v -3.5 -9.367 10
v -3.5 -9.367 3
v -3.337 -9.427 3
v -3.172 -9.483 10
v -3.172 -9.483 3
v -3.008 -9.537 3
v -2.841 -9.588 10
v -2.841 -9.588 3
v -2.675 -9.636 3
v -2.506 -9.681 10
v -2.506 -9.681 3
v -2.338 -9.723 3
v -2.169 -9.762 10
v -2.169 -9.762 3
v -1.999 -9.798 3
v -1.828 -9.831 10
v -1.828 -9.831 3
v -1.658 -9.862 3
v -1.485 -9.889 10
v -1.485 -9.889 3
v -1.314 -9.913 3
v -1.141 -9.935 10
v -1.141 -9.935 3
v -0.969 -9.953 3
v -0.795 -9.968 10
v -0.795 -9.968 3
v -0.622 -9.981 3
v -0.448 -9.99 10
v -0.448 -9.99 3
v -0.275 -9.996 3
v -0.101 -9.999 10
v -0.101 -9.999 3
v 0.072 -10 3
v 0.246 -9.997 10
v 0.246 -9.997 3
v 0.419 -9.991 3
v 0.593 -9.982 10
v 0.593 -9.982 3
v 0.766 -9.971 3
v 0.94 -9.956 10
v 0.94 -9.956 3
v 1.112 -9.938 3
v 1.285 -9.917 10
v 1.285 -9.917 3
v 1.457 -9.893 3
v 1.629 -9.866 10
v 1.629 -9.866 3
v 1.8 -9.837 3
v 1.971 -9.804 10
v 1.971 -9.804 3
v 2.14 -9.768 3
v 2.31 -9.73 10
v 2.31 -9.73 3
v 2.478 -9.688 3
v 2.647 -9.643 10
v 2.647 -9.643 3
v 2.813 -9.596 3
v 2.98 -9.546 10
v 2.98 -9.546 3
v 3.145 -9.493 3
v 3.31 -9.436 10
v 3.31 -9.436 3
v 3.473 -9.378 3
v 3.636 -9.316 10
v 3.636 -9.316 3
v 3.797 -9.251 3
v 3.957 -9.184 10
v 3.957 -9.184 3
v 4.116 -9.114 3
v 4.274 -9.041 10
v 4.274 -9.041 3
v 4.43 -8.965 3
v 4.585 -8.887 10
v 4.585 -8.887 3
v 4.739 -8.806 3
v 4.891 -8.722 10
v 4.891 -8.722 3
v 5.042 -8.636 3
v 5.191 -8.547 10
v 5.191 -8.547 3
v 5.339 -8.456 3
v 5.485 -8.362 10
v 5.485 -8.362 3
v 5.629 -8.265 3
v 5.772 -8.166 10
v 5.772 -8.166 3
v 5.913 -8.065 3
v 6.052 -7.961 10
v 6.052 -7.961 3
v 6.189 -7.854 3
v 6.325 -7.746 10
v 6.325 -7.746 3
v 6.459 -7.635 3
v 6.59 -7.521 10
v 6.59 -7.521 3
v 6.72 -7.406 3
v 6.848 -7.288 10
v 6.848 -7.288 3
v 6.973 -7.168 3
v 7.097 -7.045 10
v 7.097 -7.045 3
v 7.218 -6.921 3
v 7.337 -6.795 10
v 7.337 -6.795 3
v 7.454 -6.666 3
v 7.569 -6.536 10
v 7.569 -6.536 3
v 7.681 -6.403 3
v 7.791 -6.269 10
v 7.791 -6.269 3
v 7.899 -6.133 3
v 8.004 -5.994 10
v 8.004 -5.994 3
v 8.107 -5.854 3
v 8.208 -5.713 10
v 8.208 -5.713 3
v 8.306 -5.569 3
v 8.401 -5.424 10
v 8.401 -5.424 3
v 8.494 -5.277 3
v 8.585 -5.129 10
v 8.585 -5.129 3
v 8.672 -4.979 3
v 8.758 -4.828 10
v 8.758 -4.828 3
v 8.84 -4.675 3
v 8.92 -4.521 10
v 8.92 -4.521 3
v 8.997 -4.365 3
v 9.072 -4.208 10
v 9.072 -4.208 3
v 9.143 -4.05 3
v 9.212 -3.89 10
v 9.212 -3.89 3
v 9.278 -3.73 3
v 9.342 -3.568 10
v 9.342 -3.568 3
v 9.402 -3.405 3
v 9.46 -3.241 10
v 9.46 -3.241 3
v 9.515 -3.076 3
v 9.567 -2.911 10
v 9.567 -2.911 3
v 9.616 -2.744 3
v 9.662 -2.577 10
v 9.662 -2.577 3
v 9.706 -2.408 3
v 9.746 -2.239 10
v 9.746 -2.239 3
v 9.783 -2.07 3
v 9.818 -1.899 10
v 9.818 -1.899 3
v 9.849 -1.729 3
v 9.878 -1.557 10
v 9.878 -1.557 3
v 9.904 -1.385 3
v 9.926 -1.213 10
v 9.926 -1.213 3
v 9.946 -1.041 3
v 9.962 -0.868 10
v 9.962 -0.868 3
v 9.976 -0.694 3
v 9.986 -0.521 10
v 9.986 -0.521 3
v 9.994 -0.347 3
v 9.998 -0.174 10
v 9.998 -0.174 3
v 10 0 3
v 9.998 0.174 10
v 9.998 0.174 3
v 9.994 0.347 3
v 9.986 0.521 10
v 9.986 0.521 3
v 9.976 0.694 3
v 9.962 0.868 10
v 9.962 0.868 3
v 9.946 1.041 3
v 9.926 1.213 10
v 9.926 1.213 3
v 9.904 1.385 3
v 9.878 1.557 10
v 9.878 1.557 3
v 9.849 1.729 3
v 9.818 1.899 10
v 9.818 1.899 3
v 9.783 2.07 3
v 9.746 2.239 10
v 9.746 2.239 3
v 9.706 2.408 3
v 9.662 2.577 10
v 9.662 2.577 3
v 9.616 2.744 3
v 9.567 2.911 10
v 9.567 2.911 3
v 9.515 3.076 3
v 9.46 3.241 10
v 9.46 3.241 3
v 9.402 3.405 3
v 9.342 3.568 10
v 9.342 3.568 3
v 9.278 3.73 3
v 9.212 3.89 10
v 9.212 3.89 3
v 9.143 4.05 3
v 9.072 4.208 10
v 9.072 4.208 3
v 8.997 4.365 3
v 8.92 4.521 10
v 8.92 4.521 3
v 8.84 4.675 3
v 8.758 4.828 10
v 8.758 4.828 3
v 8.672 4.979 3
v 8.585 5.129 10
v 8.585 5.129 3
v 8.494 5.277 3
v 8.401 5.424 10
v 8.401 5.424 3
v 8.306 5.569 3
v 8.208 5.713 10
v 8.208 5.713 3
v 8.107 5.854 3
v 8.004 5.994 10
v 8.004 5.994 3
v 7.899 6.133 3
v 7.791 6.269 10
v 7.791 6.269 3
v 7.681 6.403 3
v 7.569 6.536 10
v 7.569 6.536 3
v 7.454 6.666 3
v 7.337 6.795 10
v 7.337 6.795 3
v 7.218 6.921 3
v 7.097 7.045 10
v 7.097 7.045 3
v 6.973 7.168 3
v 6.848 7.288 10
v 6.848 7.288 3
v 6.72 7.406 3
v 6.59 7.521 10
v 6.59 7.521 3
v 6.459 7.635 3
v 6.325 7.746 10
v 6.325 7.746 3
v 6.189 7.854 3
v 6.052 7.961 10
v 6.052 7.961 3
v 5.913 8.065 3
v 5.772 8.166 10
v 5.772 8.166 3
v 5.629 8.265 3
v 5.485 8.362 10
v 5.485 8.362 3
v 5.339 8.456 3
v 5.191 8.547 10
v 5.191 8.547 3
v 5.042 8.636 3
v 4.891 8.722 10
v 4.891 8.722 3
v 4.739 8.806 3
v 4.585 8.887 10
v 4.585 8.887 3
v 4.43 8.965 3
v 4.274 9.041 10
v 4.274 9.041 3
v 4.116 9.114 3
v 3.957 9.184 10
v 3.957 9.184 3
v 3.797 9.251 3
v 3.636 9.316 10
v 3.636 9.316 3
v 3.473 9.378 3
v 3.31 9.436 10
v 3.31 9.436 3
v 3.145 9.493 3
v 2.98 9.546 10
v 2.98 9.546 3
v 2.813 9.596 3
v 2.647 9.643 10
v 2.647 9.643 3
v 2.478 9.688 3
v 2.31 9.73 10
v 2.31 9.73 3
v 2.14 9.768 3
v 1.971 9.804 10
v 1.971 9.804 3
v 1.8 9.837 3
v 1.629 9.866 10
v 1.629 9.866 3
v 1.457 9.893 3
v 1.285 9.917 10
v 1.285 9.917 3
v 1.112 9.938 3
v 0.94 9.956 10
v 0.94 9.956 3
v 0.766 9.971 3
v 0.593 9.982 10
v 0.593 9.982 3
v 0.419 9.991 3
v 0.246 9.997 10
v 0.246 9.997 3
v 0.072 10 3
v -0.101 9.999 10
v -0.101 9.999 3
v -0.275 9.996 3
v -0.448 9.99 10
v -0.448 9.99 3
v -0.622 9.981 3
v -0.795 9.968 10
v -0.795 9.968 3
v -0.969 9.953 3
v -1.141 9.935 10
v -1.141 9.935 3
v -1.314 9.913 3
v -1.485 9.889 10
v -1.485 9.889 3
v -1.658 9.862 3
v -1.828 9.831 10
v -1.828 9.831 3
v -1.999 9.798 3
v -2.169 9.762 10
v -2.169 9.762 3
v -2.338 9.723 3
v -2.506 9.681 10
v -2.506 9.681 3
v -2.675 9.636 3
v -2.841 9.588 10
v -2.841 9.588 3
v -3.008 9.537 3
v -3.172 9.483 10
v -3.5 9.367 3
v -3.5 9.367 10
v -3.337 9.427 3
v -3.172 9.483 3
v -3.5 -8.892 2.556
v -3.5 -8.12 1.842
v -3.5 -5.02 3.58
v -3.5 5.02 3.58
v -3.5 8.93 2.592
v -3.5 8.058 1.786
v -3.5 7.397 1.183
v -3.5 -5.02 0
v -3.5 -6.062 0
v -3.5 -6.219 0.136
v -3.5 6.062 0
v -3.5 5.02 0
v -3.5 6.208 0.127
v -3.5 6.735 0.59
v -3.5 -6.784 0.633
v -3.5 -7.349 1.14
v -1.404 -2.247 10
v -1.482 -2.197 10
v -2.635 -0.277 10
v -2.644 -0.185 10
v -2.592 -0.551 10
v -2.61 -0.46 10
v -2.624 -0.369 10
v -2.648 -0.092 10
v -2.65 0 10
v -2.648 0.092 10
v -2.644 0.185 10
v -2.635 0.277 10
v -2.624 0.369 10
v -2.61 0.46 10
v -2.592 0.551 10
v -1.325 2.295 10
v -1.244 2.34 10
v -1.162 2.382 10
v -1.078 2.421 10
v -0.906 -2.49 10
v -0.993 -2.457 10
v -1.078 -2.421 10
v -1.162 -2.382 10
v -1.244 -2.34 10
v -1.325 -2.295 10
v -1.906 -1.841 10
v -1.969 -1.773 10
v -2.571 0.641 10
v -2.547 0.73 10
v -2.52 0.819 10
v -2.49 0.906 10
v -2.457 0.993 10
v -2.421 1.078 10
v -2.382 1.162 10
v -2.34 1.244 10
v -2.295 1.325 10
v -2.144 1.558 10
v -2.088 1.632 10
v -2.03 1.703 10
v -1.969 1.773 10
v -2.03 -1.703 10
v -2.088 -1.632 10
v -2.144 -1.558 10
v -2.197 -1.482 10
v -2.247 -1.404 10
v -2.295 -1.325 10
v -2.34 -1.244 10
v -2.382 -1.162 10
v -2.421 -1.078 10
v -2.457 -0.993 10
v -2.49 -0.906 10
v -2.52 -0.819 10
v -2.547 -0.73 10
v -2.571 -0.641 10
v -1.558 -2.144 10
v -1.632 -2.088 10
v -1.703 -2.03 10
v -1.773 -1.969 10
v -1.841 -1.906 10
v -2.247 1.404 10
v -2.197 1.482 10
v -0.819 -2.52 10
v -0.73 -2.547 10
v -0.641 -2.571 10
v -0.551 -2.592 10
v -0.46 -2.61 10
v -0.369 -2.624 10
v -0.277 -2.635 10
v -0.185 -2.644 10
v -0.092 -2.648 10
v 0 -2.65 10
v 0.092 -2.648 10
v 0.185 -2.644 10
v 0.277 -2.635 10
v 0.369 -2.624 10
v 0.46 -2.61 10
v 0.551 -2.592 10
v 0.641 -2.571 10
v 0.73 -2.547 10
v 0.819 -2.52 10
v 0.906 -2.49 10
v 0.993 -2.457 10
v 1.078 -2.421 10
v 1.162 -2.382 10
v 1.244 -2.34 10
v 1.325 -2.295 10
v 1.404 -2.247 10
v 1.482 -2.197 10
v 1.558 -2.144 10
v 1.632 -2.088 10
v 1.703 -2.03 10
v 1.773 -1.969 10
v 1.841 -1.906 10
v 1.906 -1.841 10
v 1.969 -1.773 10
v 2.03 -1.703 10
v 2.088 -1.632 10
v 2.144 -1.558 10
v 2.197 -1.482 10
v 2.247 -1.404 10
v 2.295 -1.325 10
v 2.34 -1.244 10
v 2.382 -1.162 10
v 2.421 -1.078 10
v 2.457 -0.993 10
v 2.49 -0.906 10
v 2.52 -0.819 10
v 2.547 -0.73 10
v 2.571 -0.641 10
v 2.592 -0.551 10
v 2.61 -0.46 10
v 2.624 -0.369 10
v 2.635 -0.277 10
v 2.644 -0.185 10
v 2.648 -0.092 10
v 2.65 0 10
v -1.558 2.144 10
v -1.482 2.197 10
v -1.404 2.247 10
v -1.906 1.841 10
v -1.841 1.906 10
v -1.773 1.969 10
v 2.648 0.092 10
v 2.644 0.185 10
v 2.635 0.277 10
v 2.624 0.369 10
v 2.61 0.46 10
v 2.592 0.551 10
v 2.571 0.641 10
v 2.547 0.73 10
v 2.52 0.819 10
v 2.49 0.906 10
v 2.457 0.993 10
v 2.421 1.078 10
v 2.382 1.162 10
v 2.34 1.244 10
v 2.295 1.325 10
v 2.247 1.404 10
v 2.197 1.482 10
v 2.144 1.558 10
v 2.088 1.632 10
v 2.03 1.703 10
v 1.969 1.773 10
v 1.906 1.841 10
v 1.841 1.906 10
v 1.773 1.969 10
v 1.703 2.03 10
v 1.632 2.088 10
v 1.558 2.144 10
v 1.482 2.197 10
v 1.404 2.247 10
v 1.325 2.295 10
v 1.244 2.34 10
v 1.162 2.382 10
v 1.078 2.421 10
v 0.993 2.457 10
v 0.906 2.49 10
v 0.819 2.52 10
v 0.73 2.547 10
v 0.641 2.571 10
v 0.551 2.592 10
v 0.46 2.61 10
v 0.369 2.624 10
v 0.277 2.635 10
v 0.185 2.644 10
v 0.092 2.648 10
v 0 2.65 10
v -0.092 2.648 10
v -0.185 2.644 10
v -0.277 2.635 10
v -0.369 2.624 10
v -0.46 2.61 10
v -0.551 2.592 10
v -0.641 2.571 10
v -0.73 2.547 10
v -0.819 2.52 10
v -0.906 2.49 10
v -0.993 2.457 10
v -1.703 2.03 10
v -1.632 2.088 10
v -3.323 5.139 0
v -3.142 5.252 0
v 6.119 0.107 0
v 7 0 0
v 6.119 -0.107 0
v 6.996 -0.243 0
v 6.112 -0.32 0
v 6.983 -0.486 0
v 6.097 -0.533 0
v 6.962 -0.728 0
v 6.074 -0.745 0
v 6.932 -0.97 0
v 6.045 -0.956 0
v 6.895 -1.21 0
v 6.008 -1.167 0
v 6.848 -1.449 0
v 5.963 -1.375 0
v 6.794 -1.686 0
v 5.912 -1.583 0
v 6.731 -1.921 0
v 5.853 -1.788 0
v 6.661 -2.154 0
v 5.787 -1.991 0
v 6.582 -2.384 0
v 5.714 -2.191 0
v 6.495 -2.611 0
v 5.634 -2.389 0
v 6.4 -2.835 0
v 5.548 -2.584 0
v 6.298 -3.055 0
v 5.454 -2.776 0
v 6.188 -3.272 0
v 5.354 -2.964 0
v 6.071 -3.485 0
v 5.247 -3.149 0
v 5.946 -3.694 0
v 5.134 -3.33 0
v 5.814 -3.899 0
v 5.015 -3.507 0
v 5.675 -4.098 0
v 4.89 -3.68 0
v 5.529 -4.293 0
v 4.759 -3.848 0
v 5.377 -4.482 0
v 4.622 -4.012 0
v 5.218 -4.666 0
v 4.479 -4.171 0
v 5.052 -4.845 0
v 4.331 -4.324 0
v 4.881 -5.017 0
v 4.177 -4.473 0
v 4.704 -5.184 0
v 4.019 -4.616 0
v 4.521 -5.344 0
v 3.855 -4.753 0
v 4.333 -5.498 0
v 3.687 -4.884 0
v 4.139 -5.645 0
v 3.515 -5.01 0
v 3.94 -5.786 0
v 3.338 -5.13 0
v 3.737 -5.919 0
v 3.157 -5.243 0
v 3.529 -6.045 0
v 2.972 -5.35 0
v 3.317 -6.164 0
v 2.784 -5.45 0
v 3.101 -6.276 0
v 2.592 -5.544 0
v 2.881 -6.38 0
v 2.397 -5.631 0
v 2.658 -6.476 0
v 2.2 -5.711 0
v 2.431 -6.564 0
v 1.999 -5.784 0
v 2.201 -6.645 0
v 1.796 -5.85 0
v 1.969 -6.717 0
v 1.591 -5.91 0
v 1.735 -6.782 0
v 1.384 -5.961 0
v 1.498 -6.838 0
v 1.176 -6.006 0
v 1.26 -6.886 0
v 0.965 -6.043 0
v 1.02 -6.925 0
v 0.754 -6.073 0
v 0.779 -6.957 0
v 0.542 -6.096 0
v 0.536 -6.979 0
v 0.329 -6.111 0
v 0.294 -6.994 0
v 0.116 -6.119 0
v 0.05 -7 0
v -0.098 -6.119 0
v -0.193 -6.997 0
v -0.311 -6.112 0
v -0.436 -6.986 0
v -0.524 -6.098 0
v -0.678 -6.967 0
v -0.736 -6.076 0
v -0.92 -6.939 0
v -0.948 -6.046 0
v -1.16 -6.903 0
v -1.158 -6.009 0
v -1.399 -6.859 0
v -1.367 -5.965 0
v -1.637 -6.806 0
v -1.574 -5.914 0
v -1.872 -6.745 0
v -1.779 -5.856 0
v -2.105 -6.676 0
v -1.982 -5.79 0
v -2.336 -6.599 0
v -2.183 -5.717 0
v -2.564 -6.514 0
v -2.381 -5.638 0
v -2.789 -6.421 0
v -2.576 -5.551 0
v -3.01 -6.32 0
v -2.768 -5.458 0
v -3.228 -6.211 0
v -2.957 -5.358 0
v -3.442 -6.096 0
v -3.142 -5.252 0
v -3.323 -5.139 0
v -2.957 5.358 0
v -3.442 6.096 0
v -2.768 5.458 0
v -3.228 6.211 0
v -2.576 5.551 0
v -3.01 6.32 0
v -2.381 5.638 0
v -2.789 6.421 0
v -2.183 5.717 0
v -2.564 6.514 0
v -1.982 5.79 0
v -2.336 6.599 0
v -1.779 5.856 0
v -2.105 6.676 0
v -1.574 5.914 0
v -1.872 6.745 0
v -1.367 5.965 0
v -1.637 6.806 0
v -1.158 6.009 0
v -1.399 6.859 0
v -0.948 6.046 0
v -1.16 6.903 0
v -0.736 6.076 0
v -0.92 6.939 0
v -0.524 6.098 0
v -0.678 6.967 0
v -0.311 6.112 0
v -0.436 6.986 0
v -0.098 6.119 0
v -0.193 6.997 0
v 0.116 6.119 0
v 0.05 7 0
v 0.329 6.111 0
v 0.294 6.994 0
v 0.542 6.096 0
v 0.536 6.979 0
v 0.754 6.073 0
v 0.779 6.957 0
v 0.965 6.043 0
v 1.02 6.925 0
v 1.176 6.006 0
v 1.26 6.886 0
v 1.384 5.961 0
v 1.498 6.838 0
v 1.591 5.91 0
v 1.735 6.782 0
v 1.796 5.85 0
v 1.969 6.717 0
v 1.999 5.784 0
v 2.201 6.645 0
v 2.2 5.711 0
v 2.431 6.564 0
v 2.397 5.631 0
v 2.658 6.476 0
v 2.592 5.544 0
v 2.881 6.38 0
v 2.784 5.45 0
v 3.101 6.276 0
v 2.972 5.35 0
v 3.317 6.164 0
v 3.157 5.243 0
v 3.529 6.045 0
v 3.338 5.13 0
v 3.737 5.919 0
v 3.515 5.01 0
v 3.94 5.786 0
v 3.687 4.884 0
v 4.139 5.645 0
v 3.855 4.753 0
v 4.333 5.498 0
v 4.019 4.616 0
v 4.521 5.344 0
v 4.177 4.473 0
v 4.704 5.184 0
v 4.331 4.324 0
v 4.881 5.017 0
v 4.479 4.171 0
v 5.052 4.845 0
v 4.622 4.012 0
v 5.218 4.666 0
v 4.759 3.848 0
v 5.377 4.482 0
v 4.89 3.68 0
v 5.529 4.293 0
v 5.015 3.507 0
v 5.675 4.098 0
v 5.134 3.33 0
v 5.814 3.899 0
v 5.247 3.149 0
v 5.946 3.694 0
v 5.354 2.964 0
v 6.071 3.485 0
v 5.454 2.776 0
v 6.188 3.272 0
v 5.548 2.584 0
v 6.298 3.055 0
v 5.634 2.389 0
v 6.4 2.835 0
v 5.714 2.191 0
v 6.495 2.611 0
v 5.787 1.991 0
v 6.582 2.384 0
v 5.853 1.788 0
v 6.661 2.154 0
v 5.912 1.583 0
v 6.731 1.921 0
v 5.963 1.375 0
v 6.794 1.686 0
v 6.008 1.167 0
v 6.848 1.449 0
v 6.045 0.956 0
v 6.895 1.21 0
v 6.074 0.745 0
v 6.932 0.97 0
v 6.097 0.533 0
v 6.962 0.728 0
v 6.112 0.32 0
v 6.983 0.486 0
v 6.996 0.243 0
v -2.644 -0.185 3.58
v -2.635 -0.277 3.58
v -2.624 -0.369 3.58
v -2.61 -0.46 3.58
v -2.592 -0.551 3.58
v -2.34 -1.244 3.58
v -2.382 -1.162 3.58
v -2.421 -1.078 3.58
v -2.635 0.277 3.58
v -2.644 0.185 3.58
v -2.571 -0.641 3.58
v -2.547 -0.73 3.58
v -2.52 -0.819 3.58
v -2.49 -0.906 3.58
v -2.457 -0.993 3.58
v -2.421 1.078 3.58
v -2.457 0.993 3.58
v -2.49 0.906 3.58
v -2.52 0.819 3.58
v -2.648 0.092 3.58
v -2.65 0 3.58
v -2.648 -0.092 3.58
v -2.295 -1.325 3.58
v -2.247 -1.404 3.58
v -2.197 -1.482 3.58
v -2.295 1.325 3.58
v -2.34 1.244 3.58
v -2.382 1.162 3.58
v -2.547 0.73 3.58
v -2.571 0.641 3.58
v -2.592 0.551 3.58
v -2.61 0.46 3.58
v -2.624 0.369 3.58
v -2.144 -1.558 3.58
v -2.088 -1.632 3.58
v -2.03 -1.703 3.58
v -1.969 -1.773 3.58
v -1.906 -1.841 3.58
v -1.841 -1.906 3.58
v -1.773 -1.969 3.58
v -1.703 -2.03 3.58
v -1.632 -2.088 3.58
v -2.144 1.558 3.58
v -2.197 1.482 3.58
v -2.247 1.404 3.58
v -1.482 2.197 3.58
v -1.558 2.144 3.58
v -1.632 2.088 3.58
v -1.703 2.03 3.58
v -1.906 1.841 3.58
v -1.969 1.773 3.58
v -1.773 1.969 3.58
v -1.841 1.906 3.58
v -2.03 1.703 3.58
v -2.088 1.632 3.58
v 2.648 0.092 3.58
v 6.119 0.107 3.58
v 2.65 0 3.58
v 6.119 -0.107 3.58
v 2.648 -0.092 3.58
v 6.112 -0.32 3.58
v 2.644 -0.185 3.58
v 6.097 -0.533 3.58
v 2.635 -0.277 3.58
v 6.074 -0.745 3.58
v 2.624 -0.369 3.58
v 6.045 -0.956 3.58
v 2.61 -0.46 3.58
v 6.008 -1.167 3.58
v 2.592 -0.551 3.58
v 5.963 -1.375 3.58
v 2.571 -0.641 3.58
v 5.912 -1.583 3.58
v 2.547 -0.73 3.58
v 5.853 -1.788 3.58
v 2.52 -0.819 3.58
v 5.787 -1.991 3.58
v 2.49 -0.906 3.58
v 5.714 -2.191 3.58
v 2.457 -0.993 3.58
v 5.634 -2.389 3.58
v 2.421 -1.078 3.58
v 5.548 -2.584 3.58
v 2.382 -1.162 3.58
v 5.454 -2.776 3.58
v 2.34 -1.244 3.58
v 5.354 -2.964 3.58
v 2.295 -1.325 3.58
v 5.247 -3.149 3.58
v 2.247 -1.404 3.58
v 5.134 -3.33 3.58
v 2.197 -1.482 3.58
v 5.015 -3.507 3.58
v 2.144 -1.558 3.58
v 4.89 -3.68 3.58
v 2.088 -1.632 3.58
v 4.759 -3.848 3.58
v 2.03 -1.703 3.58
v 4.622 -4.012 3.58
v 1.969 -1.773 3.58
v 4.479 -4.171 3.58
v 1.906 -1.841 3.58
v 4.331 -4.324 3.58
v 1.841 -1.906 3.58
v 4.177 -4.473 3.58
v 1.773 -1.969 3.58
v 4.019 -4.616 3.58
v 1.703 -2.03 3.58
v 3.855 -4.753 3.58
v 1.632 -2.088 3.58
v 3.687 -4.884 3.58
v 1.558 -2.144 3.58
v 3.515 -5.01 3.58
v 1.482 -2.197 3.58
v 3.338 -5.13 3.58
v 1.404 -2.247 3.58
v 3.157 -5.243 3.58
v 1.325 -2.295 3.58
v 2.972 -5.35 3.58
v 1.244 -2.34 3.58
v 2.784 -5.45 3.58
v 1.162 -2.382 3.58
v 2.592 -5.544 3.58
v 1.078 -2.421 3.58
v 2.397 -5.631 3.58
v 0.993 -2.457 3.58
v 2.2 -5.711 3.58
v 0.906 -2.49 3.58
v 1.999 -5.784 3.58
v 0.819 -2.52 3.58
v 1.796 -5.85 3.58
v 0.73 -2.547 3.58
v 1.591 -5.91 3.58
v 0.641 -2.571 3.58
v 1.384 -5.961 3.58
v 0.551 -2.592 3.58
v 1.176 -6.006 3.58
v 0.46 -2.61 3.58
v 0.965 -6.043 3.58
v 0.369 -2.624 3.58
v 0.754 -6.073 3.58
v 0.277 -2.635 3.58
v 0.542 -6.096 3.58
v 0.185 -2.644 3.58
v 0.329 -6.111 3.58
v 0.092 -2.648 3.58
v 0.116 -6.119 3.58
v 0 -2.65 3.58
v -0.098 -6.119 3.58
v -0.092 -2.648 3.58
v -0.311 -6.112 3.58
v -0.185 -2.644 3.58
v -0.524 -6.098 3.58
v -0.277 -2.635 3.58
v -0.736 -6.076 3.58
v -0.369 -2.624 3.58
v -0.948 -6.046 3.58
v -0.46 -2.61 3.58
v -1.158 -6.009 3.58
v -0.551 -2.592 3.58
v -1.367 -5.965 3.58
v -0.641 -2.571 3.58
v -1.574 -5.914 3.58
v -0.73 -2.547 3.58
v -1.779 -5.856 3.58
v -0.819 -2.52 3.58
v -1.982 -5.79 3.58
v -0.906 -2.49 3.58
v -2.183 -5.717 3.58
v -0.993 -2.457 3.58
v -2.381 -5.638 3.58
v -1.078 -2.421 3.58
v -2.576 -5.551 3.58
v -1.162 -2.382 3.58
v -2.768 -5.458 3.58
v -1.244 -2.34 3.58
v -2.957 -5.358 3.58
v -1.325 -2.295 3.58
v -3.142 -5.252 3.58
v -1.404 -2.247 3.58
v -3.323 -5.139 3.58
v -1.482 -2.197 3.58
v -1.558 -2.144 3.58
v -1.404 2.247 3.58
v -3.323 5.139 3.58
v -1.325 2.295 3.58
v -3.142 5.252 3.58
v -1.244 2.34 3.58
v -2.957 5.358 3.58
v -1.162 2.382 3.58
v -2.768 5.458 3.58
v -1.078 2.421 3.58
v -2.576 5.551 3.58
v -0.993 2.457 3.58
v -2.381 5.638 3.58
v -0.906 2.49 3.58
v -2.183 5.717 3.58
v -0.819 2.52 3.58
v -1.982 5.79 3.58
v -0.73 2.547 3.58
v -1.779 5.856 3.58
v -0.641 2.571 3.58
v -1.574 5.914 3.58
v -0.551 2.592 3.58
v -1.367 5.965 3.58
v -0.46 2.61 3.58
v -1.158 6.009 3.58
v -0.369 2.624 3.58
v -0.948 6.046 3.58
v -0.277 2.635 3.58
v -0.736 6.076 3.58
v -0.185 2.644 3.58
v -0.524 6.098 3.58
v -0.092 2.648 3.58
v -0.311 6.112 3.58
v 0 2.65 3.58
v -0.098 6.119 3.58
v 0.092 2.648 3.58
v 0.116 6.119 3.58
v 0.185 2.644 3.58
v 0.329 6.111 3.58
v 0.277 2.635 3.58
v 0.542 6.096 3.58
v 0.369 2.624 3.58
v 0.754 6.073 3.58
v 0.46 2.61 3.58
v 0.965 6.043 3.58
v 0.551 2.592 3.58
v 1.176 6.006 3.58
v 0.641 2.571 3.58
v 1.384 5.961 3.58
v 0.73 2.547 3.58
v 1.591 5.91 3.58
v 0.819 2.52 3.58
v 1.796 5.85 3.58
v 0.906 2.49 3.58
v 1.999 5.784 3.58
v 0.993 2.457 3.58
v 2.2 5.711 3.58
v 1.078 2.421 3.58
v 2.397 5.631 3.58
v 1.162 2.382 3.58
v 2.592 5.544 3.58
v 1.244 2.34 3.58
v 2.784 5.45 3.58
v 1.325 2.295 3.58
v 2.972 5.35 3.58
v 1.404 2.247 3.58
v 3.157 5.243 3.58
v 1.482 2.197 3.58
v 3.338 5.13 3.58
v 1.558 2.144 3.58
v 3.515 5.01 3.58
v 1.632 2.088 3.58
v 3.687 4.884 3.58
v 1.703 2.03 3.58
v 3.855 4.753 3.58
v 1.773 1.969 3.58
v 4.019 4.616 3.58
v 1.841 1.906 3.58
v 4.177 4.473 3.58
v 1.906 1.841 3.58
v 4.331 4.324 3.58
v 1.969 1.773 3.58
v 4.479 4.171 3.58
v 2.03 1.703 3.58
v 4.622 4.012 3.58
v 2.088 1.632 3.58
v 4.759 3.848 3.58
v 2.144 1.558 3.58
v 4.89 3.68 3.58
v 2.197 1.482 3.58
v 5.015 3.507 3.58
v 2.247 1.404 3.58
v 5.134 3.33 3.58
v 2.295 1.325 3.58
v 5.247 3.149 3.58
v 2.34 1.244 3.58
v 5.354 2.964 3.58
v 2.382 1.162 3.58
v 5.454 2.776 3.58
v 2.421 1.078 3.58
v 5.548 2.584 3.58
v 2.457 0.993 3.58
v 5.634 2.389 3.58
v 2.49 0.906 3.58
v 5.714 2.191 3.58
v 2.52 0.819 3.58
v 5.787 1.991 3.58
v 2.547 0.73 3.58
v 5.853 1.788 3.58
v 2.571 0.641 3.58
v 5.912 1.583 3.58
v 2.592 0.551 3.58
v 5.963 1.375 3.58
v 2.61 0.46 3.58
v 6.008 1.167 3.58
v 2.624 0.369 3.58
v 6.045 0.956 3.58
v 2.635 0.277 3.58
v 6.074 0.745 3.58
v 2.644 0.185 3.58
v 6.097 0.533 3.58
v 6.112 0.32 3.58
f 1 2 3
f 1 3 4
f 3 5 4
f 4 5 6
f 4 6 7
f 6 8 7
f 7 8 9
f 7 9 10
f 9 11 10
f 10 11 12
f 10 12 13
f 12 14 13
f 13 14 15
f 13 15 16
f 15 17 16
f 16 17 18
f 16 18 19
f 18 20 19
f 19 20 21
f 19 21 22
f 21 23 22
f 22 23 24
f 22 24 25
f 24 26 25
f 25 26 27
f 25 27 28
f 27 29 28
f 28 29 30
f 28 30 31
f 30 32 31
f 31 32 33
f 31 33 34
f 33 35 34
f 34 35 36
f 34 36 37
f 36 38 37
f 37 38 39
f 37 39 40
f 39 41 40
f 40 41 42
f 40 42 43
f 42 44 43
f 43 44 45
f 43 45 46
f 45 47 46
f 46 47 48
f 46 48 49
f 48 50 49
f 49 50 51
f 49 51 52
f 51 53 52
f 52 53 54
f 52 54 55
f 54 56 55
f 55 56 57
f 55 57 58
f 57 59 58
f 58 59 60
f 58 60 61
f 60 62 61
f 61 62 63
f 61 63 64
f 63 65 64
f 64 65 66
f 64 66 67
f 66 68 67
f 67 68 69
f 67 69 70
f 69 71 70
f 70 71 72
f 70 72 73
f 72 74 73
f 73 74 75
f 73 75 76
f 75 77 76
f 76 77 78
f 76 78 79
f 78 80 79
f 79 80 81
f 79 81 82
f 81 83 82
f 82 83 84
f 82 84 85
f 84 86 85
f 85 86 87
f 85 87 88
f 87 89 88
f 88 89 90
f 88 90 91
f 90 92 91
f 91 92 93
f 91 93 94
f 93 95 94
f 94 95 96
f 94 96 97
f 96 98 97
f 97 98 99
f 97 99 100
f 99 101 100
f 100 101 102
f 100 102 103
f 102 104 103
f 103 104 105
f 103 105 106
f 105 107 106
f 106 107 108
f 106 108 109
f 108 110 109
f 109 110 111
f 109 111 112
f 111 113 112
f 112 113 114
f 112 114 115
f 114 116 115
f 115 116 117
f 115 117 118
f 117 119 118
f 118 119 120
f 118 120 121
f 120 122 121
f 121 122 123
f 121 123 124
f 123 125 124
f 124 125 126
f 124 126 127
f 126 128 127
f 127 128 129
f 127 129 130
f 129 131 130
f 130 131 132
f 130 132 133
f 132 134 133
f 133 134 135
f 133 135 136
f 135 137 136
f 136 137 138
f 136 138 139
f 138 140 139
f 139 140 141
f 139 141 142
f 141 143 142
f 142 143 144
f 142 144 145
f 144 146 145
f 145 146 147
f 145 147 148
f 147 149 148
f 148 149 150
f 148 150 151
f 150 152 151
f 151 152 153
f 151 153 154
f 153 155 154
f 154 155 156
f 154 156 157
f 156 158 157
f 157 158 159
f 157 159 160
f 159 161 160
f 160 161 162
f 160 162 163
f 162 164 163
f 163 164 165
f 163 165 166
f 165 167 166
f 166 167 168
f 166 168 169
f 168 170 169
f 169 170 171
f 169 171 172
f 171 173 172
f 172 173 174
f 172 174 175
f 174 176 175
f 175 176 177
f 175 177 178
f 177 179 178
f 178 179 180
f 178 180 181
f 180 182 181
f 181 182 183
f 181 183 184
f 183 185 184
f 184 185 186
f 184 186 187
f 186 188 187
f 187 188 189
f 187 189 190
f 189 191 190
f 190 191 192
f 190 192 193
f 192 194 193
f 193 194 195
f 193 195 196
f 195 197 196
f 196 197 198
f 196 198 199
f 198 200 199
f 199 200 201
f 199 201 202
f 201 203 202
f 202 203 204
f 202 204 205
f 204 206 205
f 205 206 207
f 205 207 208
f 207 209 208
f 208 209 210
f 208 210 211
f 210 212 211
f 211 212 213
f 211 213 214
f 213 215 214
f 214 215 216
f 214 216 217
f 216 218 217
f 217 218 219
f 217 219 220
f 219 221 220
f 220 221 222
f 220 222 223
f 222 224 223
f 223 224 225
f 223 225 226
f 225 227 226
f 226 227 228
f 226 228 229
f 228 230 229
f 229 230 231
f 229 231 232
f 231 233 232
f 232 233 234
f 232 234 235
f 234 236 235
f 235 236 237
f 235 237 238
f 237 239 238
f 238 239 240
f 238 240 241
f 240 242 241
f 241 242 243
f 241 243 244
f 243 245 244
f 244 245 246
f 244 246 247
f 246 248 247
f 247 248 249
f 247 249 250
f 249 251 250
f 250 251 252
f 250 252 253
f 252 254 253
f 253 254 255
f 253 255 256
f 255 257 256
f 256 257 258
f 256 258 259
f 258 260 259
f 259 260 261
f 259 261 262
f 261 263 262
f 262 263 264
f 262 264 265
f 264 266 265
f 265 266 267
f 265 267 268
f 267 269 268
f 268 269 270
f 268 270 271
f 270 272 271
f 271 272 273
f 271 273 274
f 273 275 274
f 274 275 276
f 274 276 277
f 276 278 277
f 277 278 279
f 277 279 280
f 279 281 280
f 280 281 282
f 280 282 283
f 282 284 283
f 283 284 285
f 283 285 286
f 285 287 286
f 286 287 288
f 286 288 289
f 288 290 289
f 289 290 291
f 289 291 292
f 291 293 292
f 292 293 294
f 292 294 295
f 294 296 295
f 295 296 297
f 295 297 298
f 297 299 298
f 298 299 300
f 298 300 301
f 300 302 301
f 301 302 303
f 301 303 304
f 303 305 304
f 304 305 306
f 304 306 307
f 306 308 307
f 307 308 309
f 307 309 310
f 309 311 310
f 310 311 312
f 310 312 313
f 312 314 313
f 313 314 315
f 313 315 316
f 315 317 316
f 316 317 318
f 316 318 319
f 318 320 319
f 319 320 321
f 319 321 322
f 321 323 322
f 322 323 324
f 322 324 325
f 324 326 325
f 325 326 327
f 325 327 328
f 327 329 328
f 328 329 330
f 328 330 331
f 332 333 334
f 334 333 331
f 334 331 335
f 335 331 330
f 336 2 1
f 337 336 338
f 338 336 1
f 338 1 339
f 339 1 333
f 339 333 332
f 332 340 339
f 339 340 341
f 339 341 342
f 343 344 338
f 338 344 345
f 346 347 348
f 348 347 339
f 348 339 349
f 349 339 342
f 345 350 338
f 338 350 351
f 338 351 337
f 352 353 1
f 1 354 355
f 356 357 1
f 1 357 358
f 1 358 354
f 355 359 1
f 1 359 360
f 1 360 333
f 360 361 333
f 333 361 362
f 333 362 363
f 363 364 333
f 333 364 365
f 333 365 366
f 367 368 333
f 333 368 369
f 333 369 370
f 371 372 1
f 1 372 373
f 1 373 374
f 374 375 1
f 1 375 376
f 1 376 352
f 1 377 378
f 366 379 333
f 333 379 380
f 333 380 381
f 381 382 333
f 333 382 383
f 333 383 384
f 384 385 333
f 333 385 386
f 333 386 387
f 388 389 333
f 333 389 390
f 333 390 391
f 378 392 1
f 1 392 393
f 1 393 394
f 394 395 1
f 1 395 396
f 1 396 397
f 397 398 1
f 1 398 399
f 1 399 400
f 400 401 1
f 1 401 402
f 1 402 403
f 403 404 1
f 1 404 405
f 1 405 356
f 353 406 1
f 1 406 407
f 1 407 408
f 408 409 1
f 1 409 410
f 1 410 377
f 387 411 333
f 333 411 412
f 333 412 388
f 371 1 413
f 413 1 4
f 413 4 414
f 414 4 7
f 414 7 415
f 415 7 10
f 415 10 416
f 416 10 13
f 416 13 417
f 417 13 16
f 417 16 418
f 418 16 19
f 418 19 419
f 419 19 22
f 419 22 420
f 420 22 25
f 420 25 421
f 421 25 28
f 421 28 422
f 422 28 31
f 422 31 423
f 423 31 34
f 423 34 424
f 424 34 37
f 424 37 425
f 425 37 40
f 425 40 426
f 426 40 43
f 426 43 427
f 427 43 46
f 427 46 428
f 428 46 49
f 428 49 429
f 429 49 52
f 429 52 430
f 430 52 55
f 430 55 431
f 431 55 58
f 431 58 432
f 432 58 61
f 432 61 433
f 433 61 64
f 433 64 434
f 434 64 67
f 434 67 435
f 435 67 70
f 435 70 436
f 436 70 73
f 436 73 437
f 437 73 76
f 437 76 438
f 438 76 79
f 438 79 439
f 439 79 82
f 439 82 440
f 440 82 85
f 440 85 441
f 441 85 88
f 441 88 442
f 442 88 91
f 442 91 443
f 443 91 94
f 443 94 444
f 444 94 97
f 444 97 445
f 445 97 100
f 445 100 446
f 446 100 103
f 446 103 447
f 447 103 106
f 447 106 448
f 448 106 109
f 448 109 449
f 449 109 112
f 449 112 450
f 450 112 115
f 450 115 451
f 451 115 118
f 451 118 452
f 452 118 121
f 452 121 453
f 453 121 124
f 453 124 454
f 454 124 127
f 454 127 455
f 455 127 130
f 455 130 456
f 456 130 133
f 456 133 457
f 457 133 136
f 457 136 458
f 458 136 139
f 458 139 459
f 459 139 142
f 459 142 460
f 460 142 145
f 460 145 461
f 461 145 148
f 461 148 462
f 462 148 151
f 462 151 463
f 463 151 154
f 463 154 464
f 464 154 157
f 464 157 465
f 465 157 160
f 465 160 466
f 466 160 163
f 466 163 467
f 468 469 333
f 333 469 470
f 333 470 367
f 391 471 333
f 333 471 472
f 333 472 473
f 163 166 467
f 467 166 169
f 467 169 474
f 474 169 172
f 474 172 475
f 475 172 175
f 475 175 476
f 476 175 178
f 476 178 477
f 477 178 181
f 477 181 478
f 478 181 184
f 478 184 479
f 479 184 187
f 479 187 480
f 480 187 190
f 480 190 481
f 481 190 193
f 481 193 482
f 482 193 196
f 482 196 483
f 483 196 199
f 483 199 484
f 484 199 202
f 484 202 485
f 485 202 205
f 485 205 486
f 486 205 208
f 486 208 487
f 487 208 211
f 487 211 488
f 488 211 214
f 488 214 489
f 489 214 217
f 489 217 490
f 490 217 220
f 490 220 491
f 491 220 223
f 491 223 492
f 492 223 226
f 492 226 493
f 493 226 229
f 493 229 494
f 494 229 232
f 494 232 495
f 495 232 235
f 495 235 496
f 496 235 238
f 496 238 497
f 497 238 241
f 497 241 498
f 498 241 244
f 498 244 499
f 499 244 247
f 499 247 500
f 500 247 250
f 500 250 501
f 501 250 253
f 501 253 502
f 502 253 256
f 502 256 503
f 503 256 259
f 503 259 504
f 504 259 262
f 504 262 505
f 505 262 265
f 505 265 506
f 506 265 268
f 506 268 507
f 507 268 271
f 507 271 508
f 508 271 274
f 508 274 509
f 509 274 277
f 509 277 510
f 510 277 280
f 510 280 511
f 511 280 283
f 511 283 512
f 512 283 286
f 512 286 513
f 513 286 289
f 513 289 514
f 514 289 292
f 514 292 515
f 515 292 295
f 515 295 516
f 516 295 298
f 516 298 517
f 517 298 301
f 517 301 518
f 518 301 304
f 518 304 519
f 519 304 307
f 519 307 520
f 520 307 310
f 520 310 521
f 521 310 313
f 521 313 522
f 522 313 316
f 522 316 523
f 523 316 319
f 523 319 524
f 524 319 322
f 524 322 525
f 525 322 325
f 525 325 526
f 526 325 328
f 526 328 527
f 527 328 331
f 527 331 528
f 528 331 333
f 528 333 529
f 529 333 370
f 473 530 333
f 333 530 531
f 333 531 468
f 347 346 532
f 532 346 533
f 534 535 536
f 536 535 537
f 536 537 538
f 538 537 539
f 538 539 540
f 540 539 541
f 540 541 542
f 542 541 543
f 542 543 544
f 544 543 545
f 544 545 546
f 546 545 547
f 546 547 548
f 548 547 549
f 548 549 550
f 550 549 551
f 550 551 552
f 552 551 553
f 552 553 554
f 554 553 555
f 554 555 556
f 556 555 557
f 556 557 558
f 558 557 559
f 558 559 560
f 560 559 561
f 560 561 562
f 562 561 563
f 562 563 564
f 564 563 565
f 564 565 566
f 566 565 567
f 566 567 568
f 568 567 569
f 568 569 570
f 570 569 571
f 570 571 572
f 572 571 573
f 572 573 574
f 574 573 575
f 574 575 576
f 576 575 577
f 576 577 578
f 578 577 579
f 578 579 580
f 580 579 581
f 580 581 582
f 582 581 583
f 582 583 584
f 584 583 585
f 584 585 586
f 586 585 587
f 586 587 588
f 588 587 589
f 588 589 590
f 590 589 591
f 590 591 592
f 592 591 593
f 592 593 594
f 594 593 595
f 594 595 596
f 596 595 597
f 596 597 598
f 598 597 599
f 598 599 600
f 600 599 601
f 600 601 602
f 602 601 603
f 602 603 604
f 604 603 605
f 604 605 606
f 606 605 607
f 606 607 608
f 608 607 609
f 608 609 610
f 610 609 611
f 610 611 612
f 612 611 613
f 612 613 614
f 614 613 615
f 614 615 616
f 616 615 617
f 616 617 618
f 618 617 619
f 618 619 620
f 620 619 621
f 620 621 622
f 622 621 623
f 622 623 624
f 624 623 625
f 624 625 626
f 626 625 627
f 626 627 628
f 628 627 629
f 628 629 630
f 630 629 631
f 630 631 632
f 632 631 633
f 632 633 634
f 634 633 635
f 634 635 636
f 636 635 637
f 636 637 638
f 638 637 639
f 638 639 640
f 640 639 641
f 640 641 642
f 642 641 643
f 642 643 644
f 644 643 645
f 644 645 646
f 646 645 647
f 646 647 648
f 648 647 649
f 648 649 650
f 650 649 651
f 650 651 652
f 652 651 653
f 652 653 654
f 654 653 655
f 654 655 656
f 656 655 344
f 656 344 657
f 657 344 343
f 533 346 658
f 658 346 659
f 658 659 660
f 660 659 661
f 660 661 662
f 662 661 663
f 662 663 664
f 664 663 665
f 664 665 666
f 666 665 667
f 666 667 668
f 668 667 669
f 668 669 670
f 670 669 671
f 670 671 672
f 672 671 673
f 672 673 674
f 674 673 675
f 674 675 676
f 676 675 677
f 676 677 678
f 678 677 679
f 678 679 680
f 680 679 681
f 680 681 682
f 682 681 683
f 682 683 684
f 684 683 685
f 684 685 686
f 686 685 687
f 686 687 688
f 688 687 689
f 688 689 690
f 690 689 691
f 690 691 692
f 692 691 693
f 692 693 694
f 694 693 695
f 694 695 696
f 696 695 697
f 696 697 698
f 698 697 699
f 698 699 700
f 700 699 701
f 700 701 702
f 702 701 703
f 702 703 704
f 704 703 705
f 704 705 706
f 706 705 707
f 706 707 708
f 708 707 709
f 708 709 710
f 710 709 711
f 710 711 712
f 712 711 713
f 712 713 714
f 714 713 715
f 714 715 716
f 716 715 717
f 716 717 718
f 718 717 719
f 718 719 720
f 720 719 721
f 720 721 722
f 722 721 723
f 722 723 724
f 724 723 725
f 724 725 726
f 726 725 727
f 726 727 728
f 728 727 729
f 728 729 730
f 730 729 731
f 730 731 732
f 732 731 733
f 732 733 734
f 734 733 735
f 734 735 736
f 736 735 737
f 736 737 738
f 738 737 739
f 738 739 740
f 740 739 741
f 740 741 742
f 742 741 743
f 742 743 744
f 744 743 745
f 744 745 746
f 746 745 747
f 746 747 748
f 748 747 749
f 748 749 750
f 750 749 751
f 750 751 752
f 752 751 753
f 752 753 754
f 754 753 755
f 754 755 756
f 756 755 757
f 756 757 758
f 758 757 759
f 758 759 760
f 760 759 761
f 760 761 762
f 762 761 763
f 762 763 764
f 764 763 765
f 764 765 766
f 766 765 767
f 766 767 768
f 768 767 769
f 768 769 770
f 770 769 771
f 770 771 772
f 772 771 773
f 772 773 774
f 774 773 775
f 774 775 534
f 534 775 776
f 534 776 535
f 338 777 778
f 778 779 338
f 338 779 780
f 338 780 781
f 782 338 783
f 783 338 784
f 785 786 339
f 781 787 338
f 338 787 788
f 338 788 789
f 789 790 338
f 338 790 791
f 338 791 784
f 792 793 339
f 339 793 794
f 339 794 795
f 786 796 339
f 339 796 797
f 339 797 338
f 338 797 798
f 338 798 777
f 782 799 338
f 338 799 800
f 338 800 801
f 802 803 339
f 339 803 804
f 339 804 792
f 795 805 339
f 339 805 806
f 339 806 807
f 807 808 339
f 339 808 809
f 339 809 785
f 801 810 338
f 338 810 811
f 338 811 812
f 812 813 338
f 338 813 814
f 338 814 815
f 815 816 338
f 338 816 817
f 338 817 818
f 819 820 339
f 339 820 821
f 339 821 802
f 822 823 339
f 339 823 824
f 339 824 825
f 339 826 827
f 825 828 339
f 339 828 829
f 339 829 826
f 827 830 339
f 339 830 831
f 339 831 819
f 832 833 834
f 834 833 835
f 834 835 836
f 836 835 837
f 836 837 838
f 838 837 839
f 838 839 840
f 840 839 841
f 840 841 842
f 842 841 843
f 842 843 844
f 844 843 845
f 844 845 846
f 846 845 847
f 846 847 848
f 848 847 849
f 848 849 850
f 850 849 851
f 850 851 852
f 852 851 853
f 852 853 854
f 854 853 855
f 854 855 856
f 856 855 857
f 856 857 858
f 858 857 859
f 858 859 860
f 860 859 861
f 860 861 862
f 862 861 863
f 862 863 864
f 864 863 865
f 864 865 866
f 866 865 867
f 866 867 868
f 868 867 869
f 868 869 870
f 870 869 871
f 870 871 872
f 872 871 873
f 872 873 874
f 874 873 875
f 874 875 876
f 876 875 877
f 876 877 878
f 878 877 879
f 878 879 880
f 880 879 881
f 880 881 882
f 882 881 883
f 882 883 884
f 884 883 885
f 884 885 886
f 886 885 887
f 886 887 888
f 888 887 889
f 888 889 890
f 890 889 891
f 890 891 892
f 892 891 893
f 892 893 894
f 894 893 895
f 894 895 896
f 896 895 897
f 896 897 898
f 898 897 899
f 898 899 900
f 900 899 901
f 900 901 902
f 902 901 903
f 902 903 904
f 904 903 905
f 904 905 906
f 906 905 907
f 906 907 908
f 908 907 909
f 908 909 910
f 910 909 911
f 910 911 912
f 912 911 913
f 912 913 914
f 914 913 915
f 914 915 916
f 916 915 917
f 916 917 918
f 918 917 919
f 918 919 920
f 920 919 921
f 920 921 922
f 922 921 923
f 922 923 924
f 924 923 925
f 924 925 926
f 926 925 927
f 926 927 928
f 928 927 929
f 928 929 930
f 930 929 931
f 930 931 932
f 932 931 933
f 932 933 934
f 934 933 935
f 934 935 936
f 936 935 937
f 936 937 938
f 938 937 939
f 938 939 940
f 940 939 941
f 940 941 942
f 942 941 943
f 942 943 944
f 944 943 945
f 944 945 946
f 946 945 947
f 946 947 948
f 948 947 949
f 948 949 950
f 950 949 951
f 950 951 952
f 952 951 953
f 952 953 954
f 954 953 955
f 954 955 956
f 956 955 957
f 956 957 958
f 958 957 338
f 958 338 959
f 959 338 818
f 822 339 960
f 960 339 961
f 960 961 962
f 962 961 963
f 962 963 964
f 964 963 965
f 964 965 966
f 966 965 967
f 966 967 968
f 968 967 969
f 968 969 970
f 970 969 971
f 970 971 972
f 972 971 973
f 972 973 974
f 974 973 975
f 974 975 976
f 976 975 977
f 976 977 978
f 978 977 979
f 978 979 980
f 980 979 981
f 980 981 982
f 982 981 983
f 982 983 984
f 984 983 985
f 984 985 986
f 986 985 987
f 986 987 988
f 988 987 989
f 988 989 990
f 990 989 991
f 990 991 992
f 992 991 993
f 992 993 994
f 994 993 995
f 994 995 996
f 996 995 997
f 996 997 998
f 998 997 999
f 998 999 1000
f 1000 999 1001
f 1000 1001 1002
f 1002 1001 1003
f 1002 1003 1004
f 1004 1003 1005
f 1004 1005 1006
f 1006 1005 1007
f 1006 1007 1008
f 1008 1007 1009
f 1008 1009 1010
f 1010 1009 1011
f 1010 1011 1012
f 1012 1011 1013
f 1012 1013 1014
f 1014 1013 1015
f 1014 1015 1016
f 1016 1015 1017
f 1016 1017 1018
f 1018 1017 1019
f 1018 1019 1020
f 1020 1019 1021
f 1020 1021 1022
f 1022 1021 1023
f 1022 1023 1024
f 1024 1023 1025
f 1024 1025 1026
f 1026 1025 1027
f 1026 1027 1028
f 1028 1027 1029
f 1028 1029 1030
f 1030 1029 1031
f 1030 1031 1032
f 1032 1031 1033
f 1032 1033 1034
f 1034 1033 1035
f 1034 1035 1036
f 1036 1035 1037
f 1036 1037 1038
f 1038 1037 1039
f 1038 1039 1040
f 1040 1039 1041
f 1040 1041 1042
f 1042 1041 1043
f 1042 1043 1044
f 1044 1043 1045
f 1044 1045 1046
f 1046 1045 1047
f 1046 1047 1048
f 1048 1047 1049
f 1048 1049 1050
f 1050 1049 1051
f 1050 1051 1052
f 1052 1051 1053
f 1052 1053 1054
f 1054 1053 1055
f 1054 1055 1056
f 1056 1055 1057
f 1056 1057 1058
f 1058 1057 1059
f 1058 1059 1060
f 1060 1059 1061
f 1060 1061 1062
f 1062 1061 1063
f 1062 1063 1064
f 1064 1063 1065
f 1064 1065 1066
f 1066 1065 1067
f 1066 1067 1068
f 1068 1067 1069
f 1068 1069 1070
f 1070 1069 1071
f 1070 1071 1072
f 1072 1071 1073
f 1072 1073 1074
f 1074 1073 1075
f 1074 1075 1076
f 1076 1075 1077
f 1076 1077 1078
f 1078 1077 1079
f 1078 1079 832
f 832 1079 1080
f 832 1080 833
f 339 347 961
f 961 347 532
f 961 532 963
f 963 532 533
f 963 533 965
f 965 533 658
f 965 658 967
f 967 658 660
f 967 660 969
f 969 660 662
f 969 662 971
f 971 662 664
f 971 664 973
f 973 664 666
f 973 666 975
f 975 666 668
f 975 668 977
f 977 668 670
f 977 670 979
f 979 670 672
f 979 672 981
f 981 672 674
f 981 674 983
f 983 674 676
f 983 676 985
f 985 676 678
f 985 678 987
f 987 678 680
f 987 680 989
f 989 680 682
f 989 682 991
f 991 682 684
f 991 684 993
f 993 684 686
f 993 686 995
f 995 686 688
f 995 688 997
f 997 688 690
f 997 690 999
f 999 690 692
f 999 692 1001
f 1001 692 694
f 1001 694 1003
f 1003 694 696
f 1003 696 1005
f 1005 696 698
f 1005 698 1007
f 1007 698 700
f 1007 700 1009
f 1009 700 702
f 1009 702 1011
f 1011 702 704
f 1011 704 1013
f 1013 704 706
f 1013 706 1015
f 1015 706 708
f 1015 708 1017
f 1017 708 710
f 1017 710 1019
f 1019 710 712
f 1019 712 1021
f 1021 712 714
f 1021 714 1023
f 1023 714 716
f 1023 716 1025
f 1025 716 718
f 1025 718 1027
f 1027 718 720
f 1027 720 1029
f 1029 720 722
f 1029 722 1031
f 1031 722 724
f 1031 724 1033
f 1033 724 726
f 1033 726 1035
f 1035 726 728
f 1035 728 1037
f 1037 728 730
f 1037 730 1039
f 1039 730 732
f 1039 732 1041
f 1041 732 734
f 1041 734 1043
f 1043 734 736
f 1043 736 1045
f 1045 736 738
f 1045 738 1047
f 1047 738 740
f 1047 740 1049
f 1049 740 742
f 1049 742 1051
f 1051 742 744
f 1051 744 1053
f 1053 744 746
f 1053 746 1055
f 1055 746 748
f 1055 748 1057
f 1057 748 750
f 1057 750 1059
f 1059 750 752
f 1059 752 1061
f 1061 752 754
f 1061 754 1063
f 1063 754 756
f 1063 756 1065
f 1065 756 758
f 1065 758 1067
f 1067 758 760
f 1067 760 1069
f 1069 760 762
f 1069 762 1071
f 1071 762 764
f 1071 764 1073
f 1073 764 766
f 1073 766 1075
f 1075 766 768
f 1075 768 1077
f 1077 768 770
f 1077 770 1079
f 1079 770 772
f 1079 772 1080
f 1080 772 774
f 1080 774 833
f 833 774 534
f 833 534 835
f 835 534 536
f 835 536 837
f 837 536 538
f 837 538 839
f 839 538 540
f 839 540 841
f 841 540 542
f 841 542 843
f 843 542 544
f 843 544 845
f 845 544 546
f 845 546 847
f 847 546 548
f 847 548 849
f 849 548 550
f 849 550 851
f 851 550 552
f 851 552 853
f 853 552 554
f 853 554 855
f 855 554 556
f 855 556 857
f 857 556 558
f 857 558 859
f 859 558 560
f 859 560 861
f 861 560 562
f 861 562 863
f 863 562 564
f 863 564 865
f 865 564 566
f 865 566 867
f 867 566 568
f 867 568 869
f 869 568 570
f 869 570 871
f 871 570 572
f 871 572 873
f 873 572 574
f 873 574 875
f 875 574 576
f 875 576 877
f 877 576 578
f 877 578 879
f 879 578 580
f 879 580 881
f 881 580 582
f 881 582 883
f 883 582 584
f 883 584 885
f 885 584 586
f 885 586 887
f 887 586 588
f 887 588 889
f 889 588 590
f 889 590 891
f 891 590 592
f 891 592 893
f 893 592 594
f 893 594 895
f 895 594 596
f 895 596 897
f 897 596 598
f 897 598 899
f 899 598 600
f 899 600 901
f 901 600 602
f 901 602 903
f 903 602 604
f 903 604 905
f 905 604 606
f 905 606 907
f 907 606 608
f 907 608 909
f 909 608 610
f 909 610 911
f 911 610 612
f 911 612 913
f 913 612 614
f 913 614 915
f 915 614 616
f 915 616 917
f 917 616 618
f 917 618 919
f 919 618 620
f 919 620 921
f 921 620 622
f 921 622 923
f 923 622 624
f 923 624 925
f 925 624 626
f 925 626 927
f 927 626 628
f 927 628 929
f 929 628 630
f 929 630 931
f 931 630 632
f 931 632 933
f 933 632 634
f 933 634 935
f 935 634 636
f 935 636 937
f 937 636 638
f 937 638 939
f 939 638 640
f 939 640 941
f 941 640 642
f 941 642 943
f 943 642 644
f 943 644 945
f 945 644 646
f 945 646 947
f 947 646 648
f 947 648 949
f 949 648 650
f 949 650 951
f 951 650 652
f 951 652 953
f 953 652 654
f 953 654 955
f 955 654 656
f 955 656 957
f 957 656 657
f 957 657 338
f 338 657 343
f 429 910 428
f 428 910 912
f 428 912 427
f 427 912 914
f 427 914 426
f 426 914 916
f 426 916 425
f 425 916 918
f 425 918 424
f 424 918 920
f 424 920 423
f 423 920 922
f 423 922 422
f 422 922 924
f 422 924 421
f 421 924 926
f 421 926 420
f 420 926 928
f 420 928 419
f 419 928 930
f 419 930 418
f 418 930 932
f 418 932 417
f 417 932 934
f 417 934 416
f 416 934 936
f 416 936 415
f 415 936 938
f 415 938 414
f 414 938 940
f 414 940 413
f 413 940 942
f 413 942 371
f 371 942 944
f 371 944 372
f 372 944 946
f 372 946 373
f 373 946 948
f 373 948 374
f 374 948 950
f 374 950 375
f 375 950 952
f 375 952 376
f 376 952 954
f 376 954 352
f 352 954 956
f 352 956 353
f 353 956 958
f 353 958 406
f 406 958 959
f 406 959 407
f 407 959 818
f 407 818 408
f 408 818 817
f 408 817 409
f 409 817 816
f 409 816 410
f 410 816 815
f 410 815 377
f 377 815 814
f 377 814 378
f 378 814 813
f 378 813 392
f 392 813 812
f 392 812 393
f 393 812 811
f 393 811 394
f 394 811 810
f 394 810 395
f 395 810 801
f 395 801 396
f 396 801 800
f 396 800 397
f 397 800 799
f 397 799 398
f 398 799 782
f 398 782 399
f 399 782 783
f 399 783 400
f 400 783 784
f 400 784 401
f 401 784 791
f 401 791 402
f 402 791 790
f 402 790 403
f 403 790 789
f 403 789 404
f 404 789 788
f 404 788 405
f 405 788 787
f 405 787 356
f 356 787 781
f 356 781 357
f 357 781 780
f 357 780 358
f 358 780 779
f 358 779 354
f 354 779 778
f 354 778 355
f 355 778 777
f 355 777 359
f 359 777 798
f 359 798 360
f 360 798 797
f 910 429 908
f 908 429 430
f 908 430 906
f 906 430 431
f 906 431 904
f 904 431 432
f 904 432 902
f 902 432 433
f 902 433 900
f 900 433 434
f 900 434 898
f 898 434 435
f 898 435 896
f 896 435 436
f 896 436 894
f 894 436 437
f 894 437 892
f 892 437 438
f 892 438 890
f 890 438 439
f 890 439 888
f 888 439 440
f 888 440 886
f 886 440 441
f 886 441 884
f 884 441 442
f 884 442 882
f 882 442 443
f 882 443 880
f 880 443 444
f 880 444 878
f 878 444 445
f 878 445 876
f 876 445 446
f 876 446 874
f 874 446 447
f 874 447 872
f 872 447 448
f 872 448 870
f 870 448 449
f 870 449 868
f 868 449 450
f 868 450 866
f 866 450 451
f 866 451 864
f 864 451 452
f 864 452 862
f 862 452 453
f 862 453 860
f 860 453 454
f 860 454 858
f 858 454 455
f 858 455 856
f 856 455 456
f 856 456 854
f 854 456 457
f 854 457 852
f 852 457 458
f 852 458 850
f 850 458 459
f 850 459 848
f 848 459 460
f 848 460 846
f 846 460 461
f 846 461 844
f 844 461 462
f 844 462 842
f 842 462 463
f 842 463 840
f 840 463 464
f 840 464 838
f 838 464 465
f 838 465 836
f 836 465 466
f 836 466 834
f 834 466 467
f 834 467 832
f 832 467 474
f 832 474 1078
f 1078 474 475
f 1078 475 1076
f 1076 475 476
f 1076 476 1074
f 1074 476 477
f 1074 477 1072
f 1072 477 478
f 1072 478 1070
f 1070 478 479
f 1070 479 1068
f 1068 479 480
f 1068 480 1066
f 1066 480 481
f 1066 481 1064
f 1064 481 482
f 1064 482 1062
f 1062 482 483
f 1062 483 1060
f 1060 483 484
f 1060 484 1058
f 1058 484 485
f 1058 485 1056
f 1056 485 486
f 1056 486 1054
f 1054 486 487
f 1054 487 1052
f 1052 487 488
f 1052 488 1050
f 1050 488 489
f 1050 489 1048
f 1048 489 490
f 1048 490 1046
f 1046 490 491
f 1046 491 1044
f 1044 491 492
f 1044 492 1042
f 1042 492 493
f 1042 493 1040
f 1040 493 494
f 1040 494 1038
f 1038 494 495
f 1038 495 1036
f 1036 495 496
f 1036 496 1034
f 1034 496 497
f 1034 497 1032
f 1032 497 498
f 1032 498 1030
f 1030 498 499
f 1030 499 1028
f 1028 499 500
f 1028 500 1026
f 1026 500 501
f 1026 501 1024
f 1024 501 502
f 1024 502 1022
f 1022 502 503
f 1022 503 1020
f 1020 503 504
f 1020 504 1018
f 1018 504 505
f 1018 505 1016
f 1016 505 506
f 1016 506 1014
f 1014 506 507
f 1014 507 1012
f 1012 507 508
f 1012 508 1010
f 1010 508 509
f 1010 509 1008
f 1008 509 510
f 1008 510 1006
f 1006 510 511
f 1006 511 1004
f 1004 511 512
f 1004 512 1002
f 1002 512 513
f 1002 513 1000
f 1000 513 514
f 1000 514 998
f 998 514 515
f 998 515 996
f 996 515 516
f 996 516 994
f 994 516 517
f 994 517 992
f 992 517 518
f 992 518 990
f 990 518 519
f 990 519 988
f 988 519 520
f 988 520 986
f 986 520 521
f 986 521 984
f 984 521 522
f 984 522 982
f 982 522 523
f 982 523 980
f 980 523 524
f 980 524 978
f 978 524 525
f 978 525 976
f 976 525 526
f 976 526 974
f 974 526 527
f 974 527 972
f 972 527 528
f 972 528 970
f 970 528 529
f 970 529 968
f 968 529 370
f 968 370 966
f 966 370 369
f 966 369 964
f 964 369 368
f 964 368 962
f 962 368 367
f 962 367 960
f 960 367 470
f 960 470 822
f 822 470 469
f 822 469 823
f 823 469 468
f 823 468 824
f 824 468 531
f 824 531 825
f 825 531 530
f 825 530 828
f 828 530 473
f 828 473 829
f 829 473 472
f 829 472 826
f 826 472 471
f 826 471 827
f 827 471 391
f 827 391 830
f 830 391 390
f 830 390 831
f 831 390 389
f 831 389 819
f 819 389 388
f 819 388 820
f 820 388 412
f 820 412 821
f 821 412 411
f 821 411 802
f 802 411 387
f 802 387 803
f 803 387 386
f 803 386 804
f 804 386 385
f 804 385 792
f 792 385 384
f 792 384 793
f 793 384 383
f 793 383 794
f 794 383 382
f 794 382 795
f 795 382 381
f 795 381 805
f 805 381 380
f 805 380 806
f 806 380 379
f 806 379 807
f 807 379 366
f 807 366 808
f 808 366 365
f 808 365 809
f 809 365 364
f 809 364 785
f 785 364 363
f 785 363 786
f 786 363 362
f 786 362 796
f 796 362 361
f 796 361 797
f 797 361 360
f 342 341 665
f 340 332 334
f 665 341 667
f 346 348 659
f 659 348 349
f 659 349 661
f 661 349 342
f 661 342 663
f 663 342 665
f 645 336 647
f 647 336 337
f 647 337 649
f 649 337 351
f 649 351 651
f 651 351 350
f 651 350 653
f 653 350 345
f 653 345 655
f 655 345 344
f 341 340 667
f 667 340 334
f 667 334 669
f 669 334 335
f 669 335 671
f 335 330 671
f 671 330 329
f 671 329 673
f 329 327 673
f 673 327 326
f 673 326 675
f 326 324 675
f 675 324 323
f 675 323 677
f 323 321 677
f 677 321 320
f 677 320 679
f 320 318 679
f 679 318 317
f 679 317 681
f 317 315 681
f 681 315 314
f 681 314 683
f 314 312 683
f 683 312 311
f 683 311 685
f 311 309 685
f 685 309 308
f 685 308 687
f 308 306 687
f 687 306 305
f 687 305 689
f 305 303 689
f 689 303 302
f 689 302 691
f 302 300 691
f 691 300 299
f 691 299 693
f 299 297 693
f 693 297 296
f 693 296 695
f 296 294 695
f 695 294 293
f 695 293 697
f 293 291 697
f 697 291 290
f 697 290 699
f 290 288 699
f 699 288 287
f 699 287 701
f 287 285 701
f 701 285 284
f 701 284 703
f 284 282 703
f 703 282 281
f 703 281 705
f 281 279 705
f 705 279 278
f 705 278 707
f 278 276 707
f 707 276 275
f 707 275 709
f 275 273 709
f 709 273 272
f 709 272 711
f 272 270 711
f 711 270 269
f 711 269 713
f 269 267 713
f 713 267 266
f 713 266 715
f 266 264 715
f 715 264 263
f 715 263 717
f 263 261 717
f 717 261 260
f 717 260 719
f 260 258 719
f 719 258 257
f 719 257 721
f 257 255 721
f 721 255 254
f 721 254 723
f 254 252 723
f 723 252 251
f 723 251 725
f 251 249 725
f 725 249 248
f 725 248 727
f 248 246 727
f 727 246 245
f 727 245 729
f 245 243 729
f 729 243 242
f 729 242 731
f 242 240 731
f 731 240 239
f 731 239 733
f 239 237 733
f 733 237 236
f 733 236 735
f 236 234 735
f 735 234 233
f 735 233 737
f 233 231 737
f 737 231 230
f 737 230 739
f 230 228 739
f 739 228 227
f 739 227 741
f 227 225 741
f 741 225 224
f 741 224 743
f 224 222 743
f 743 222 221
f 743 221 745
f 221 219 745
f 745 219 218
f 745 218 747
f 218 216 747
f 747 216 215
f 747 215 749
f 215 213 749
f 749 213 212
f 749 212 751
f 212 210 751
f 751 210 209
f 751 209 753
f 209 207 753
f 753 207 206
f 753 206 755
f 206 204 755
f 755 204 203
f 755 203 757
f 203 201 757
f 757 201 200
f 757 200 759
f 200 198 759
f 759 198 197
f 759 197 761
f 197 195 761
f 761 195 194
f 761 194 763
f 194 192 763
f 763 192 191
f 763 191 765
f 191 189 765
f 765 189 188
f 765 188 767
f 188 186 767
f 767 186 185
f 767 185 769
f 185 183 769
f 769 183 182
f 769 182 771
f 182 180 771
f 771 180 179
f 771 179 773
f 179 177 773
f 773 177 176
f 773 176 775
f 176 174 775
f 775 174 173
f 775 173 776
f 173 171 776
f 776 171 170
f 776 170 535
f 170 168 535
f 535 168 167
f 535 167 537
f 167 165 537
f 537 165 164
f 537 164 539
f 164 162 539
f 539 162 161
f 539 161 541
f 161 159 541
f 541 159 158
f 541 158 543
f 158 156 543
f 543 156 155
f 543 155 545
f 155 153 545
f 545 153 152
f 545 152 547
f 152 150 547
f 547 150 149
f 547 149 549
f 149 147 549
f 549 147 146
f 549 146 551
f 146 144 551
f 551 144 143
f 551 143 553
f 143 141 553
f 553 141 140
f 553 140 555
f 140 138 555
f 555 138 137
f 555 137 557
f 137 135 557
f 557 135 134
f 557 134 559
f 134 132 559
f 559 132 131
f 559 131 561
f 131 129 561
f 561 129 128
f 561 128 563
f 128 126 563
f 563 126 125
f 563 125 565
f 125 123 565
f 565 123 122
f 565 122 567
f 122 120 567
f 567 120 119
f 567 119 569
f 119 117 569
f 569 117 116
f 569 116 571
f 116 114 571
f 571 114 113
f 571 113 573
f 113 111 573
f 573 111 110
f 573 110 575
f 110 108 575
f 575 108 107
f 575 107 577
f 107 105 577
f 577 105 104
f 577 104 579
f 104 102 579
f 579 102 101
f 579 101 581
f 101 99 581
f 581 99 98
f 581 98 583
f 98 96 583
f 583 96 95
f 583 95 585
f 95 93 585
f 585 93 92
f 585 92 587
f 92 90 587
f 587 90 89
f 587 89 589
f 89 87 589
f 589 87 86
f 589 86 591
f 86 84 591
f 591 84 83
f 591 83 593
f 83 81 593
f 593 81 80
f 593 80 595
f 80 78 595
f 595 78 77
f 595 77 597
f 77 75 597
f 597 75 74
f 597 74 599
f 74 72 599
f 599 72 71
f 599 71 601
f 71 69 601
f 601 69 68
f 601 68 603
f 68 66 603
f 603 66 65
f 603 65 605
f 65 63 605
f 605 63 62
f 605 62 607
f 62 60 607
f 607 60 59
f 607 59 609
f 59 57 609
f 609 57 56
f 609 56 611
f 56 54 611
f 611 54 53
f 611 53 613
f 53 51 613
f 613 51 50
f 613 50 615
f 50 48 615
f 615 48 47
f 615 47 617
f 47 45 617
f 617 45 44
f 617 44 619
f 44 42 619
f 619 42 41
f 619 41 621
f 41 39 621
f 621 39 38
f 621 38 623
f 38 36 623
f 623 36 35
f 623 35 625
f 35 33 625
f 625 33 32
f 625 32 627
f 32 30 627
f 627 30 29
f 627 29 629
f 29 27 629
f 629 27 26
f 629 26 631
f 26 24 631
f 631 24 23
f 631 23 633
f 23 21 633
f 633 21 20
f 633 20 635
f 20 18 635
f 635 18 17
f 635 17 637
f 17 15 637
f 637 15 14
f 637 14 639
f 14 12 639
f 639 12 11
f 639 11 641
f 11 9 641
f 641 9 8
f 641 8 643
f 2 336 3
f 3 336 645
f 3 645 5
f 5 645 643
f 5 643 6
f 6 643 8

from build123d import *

# Parameters (mm, degrees)
BOSS_EXTRUDE1_DEPTH                     = 10
CBORE_FOR_M5_HEX_HEAD_BOLT1_D           = 5.3
CBORE_FOR_M5_HEX_HEAD_BOLT1_CBORE_D     = 12.24
CBORE_FOR_M5_HEX_HEAD_BOLT1_CBORE_DEPTH = 3.58
CHAMFER1_SIZE                           = 3


with BuildPart() as part:
    # Sketch1 → Boss-Extrude1 (new body)
    with BuildSketch(Plane.XY):
        with BuildLine():
            Line((-3.5, 9.367496998), (-3.5, -9.367496998))
            ThreePointArc((-3.5, -9.367496998), (10, 0), (-3.5, 9.367496998))
        make_face()
    extrude(amount=BOSS_EXTRUDE1_DEPTH)

    # CBORE for M5 Hex Head Bolt1 (through all)
    with Locations(Plane(origin=(0, 0, 0), x_dir=(-1, 0, 0), z_dir=(0, 0, -1))):
        with Locations((0, 0)):
            CounterBoreHole(CBORE_FOR_M5_HEX_HEAD_BOLT1_D / 2, CBORE_FOR_M5_HEX_HEAD_BOLT1_CBORE_D / 2, CBORE_FOR_M5_HEX_HEAD_BOLT1_CBORE_DEPTH)

    # Chamfer1
    chamfer1_edges = [part.edges().sort_by_distance(p)[0] for p in [
        (10, 0, 0),
    ]]
    chamfer(chamfer1_edges, length=CHAMFER1_SIZE)


solid = part.part
